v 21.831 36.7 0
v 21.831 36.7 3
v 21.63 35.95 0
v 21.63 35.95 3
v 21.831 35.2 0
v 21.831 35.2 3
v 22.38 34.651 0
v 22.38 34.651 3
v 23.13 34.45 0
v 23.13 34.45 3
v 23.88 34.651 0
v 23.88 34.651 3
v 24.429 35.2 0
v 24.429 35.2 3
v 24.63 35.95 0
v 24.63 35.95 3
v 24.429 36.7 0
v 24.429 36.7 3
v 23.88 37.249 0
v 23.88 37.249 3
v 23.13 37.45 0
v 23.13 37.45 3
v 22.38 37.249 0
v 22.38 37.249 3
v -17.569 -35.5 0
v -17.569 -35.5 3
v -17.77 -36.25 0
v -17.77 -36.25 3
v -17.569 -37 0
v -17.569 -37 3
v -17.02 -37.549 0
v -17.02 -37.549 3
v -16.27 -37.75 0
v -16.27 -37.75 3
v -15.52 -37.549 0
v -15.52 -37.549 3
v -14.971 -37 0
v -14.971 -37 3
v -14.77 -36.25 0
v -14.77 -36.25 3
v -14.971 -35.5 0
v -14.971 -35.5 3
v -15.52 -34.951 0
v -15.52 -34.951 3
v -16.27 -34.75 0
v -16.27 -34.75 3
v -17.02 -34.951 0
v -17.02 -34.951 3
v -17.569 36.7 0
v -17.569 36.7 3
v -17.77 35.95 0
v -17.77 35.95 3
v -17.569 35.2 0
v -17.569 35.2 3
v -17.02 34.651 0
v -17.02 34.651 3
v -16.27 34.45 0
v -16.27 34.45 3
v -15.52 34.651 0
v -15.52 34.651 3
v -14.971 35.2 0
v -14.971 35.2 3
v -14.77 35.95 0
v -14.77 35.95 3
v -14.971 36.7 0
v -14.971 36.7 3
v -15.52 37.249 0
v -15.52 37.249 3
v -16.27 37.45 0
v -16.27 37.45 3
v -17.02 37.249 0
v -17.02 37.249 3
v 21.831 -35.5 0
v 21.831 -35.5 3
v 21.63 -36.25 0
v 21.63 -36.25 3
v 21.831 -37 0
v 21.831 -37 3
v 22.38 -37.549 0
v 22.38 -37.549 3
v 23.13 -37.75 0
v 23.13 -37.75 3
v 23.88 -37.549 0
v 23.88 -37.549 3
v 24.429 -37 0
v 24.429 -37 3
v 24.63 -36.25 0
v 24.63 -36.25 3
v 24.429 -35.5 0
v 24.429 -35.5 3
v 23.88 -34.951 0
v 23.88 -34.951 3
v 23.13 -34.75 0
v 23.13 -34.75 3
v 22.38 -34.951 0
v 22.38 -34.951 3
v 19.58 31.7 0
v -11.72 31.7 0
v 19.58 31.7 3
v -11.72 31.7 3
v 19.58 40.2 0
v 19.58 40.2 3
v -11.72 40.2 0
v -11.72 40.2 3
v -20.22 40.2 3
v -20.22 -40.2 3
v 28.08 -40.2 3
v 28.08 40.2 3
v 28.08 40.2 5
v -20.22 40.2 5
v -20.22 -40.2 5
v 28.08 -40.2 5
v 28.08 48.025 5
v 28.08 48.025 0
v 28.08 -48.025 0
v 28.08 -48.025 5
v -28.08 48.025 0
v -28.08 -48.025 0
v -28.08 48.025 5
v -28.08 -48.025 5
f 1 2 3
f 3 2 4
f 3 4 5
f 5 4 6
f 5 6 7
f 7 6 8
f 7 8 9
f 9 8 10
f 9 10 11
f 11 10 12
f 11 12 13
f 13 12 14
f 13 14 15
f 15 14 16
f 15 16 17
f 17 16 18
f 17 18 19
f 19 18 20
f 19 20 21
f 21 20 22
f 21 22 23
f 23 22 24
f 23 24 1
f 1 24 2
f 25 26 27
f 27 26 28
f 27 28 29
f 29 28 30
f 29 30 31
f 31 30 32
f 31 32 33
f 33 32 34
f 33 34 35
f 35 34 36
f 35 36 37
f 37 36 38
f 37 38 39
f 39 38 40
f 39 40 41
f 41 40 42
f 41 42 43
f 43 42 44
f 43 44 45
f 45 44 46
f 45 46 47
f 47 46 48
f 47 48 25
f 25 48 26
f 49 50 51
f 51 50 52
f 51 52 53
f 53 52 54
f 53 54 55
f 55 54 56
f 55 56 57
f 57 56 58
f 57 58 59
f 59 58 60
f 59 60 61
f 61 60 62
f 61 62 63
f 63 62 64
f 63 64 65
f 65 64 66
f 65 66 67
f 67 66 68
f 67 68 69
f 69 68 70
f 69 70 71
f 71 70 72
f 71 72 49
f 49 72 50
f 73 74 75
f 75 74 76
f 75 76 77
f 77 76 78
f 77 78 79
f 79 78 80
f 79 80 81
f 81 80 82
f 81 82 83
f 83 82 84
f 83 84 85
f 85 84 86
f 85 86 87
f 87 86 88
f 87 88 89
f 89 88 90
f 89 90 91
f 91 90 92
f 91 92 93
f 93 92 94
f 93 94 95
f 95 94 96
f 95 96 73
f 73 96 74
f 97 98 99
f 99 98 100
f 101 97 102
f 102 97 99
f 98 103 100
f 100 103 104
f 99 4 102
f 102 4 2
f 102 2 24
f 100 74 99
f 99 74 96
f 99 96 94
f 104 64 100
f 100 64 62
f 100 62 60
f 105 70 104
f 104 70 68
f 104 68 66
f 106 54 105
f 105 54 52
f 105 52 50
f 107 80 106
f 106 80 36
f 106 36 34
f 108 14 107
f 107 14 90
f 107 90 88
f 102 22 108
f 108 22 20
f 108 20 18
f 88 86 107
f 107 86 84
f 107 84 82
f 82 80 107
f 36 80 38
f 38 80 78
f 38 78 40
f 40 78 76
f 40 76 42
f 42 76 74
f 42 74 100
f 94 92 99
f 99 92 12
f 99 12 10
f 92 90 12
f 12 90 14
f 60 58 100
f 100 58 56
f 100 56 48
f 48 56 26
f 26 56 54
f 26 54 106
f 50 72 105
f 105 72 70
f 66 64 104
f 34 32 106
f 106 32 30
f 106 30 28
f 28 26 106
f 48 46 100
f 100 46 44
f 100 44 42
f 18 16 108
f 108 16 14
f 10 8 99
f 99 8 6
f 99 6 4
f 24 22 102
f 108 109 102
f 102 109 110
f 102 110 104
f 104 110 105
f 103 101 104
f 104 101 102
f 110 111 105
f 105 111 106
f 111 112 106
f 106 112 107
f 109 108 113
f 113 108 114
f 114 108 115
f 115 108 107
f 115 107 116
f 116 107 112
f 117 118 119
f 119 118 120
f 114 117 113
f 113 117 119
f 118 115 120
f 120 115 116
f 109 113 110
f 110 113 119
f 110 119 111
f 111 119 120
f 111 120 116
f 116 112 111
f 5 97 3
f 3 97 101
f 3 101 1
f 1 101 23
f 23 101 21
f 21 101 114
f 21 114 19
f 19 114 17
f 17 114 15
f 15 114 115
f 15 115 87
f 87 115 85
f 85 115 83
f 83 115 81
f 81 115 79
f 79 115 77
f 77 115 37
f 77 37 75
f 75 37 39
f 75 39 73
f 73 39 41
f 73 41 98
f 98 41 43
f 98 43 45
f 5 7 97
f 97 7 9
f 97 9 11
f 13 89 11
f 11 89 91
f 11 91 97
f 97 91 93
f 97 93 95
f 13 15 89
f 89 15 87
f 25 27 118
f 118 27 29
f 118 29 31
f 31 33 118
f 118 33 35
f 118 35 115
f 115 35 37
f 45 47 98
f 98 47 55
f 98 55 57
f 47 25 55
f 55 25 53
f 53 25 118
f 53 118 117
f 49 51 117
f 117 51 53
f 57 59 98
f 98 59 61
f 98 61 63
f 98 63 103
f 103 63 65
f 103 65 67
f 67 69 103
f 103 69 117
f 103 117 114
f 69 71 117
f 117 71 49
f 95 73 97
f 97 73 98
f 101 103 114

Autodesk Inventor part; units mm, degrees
ref_plane "YZ Plane" through (0, 0, 0) normal (1, 0, 0) x (0, 1, 0)
ref_plane "XZ Plane" through (0, 0, 0) normal (0, 1, 0) x (-1, 0, 0)
ref_plane "XY Plane" through (0, 0, 0) normal (0, 0, 1) x (1, 0, 0)
sketch "Sketch1" plane through (0, 0, 0) normal (0, 0, 1) x (1, 0, 0)
  line L0 (-28.08, -48.025) -> (28.08, -48.025)
  line L1 (28.08, -48.025) -> (28.08, 48.025)
  line L2 (28.08, 48.025) -> (-28.08, 48.025)
  line L3 (-28.08, 48.025) -> (-28.08, -48.025)
  line L4 (-28.08, -48.025) -> (28.08, 48.025) construction
  line L5 (28.08, -48.025) -> (-28.08, 48.025) construction
  point P0 (0, 0)
  dimension "Length" = 56.16
  dimension "Height" = 96.05
extrude "BasicShape" add sketch "Sketch1" along normal blind 5
sketch "KeypadDimensions" plane through (0, 0, 5) normal (0, 0, 1) x (1, 0, 0)
  line L0 (-28.08, -48.025) -> (28.08, -48.025) construction
  line L1 (28.08, -48.025) -> (3.93, -48.025) construction
  line L2 (3.93, -48.025) -> (3.93, 0) construction
  line L3 (3.93, 0) -> (28.08, 0) construction
  line L4 (28.08, 0) -> (28.08, -48.025) construction
  line L5 (-20.22, -40.2) -> (28.08, -40.2)
  line L6 (28.08, -40.2) -> (28.08, 40.2)
  line L7 (28.08, 40.2) -> (-20.22, 40.2)
  line L8 (-20.22, 40.2) -> (-20.22, -40.2)
  line L9 (-20.22, -40.2) -> (28.08, 40.2) construction
  line L10 (28.08, -40.2) -> (-20.22, 40.2) construction
  point P0 (0, 0)
  dimension "d4" = 24.15
  dimension "d5" = 48.025
  dimension "KeypadLength" = 48.3
  dimension "KeypadHeight" = 80.4
extrude "KeypadCountersink" cut sketch "KeypadDimensions" against normal blind 2
sketch "Sketch3" plane through (0, 0, 3) normal (0, 0, 1) x (1, 0, 0)
  line L0 (-20.22, -40.2) -> (-20.22, 40.2) projected
  line L1 (-20.22, 40.2) -> (-11.72, 40.2)
  line L2 (-11.72, 40.2) -> (-11.72, 31.7)
  line L3 (-11.72, 31.7) -> (-20.22, 31.7)
  line L4 (-20.22, 31.7) -> (-20.22, 40.2)
  line L5 (-20.22, 40.2) -> (28.08, 40.2) projected
  line L6 (28.08, 40.2) -> (19.58, 40.2)
  line L7 (19.58, 40.2) -> (19.58, 31.7)
  line L8 (19.58, 31.7) -> (28.08, 31.7)
  line L9 (28.08, 31.7) -> (28.08, 40.2)
  line L10 (28.08, -40.2) -> (-20.22, -40.2) projected
  line L11 (-20.22, -40.2) -> (-11.72, -40.2)
  line L12 (-11.72, -40.2) -> (-11.72, -31.7)
  line L13 (-11.72, -31.7) -> (-20.22, -31.7)
  line L14 (-20.22, -31.7) -> (-20.22, -40.2)
  line L15 (28.08, -40.2) -> (19.58, -40.2)
  line L16 (19.58, -40.2) -> (19.58, -31.7)
  line L17 (19.58, -31.7) -> (28.08, -31.7)
  line L18 (28.08, -31.7) -> (28.08, -40.2)
  line L19 (-11.72, 31.7) -> (19.58, 31.7)
  line L20 (-20.22, 40.2) -> (-16.27, 40.2) construction
  line L21 (-16.27, 40.2) -> (-16.27, 35.95) construction
  line L22 (-16.27, 35.95) -> (-20.22, 35.95) construction
  line L23 (-20.22, 35.95) -> (-20.22, 40.2) construction
  circle A0 centre (-16.27, 35.95) radius 1.75 construction
  circle A1 centre (-16.27, 35.95) radius 1.5
  line L24 (28.08, 40.2) -> (28.08, -40.2) construction
  line L25 (28.08, 40.2) -> (23.13, 40.2) construction
  line L26 (23.13, 40.2) -> (23.13, 35.95) construction
  line L27 (23.13, 35.95) -> (28.08, 35.95) construction
  line L28 (28.08, 35.95) -> (28.08, 40.2) construction
  circle A2 centre (23.13, 35.95) radius 1.5
  line L29 (28.08, -40.2) -> (23.13, -40.2) construction
  line L30 (23.13, -40.2) -> (23.13, -36.25) construction
  line L31 (23.13, -36.25) -> (28.08, -36.25) construction
  line L32 (28.08, -36.25) -> (28.08, -40.2) construction
  line L33 (-20.22, -40.2) -> (-16.27, -40.2) construction
  line L34 (-16.27, -40.2) -> (-16.27, -36.25) construction
  line L35 (-16.27, -36.25) -> (-20.22, -36.25) construction
  line L36 (-20.22, -36.25) -> (-20.22, -40.2) construction
  circle A3 centre (-16.27, -36.25) radius 1.5
  circle A4 centre (23.13, -36.25) radius 1.5
  point P0 (0, 0)
  dimension "d10" = 8.5
  dimension "d11" = 8.5
  dimension "d12" = 8.5
  dimension "d13" = 8.5
  dimension "CornerLength" = 8.5
  dimension "d15" = 8.5
  dimension "d16" = 8.5
  dimension "d17" = 8.5
  dimension "KeypadHoleDiameter" = 3.5
  dimension "KeypadScrewHoleDiameterUntapped" = 3
  dimension "UpperKeypadHoleSpacingY" = 4.25
  dimension "LeftKeypadHoleSpacingX" = 3.95
  dimension "RightKeypadHoleSpacingX" = 4.95
  dimension "d23" = 4.25
  dimension "d25" = 3
  dimension "d26" = 4.95
  dimension "LowerKeypadHoleSpacingY" = 3.95
  dimension "d28" = 3
  dimension "d29" = 3
  dimension "d30" = 3.95
  dimension "d31" = 3.95
extrude "Extrusion3" cut sketch "Sketch3" against normal blind 5 contours L2 L5 L7 L19 | A1 | A2 | A3 | A4
thread "Thread1" size "M3x0.5" class "6H" standard "ANSI Metric M Profile" length 5
thread "Thread2" size "M3x0.5" class "6H" standard "ANSI Metric M Profile" length 5
thread "Thread3" size "M3x0.5" class "6H" standard "ANSI Metric M Profile" length 5
thread "Thread4" size "M3x0.5" class "6H" standard "ANSI Metric M Profile" length 3
equation "\"d4\" = 0.5 * KeypadLength"
equation "\"d5\" = 0.5 * Height"
equation "\"d15\" = CornerLength"
equation "\"d16\" = CornerLength"
equation "\"d17\" = CornerLength"
equation "\"d23\" = UpperKeypadHoleSpacingY"
equation "\"d25\" = KeypadScrewHoleDiameterUntapped"
equation "\"d26\" = RightKeypadHoleSpacingX"
equation "\"d28\" = KeypadScrewHoleDiameterUntapped"
equation "\"d29\" = KeypadScrewHoleDiameterUntapped"
equation "\"d30\" = LowerKeypadHoleSpacingY"
equation "\"d31\" = LeftKeypadHoleSpacingX"
equation "\"d32\" = Thickness"
equation "\"d34\" = Thickness"
equation "\"d36\" = Thickness"
equation "\"d38\" = Thickness"
equation "\"Thickness\" = 5"
properties part number "2020-04-12 KeypadOnly"
